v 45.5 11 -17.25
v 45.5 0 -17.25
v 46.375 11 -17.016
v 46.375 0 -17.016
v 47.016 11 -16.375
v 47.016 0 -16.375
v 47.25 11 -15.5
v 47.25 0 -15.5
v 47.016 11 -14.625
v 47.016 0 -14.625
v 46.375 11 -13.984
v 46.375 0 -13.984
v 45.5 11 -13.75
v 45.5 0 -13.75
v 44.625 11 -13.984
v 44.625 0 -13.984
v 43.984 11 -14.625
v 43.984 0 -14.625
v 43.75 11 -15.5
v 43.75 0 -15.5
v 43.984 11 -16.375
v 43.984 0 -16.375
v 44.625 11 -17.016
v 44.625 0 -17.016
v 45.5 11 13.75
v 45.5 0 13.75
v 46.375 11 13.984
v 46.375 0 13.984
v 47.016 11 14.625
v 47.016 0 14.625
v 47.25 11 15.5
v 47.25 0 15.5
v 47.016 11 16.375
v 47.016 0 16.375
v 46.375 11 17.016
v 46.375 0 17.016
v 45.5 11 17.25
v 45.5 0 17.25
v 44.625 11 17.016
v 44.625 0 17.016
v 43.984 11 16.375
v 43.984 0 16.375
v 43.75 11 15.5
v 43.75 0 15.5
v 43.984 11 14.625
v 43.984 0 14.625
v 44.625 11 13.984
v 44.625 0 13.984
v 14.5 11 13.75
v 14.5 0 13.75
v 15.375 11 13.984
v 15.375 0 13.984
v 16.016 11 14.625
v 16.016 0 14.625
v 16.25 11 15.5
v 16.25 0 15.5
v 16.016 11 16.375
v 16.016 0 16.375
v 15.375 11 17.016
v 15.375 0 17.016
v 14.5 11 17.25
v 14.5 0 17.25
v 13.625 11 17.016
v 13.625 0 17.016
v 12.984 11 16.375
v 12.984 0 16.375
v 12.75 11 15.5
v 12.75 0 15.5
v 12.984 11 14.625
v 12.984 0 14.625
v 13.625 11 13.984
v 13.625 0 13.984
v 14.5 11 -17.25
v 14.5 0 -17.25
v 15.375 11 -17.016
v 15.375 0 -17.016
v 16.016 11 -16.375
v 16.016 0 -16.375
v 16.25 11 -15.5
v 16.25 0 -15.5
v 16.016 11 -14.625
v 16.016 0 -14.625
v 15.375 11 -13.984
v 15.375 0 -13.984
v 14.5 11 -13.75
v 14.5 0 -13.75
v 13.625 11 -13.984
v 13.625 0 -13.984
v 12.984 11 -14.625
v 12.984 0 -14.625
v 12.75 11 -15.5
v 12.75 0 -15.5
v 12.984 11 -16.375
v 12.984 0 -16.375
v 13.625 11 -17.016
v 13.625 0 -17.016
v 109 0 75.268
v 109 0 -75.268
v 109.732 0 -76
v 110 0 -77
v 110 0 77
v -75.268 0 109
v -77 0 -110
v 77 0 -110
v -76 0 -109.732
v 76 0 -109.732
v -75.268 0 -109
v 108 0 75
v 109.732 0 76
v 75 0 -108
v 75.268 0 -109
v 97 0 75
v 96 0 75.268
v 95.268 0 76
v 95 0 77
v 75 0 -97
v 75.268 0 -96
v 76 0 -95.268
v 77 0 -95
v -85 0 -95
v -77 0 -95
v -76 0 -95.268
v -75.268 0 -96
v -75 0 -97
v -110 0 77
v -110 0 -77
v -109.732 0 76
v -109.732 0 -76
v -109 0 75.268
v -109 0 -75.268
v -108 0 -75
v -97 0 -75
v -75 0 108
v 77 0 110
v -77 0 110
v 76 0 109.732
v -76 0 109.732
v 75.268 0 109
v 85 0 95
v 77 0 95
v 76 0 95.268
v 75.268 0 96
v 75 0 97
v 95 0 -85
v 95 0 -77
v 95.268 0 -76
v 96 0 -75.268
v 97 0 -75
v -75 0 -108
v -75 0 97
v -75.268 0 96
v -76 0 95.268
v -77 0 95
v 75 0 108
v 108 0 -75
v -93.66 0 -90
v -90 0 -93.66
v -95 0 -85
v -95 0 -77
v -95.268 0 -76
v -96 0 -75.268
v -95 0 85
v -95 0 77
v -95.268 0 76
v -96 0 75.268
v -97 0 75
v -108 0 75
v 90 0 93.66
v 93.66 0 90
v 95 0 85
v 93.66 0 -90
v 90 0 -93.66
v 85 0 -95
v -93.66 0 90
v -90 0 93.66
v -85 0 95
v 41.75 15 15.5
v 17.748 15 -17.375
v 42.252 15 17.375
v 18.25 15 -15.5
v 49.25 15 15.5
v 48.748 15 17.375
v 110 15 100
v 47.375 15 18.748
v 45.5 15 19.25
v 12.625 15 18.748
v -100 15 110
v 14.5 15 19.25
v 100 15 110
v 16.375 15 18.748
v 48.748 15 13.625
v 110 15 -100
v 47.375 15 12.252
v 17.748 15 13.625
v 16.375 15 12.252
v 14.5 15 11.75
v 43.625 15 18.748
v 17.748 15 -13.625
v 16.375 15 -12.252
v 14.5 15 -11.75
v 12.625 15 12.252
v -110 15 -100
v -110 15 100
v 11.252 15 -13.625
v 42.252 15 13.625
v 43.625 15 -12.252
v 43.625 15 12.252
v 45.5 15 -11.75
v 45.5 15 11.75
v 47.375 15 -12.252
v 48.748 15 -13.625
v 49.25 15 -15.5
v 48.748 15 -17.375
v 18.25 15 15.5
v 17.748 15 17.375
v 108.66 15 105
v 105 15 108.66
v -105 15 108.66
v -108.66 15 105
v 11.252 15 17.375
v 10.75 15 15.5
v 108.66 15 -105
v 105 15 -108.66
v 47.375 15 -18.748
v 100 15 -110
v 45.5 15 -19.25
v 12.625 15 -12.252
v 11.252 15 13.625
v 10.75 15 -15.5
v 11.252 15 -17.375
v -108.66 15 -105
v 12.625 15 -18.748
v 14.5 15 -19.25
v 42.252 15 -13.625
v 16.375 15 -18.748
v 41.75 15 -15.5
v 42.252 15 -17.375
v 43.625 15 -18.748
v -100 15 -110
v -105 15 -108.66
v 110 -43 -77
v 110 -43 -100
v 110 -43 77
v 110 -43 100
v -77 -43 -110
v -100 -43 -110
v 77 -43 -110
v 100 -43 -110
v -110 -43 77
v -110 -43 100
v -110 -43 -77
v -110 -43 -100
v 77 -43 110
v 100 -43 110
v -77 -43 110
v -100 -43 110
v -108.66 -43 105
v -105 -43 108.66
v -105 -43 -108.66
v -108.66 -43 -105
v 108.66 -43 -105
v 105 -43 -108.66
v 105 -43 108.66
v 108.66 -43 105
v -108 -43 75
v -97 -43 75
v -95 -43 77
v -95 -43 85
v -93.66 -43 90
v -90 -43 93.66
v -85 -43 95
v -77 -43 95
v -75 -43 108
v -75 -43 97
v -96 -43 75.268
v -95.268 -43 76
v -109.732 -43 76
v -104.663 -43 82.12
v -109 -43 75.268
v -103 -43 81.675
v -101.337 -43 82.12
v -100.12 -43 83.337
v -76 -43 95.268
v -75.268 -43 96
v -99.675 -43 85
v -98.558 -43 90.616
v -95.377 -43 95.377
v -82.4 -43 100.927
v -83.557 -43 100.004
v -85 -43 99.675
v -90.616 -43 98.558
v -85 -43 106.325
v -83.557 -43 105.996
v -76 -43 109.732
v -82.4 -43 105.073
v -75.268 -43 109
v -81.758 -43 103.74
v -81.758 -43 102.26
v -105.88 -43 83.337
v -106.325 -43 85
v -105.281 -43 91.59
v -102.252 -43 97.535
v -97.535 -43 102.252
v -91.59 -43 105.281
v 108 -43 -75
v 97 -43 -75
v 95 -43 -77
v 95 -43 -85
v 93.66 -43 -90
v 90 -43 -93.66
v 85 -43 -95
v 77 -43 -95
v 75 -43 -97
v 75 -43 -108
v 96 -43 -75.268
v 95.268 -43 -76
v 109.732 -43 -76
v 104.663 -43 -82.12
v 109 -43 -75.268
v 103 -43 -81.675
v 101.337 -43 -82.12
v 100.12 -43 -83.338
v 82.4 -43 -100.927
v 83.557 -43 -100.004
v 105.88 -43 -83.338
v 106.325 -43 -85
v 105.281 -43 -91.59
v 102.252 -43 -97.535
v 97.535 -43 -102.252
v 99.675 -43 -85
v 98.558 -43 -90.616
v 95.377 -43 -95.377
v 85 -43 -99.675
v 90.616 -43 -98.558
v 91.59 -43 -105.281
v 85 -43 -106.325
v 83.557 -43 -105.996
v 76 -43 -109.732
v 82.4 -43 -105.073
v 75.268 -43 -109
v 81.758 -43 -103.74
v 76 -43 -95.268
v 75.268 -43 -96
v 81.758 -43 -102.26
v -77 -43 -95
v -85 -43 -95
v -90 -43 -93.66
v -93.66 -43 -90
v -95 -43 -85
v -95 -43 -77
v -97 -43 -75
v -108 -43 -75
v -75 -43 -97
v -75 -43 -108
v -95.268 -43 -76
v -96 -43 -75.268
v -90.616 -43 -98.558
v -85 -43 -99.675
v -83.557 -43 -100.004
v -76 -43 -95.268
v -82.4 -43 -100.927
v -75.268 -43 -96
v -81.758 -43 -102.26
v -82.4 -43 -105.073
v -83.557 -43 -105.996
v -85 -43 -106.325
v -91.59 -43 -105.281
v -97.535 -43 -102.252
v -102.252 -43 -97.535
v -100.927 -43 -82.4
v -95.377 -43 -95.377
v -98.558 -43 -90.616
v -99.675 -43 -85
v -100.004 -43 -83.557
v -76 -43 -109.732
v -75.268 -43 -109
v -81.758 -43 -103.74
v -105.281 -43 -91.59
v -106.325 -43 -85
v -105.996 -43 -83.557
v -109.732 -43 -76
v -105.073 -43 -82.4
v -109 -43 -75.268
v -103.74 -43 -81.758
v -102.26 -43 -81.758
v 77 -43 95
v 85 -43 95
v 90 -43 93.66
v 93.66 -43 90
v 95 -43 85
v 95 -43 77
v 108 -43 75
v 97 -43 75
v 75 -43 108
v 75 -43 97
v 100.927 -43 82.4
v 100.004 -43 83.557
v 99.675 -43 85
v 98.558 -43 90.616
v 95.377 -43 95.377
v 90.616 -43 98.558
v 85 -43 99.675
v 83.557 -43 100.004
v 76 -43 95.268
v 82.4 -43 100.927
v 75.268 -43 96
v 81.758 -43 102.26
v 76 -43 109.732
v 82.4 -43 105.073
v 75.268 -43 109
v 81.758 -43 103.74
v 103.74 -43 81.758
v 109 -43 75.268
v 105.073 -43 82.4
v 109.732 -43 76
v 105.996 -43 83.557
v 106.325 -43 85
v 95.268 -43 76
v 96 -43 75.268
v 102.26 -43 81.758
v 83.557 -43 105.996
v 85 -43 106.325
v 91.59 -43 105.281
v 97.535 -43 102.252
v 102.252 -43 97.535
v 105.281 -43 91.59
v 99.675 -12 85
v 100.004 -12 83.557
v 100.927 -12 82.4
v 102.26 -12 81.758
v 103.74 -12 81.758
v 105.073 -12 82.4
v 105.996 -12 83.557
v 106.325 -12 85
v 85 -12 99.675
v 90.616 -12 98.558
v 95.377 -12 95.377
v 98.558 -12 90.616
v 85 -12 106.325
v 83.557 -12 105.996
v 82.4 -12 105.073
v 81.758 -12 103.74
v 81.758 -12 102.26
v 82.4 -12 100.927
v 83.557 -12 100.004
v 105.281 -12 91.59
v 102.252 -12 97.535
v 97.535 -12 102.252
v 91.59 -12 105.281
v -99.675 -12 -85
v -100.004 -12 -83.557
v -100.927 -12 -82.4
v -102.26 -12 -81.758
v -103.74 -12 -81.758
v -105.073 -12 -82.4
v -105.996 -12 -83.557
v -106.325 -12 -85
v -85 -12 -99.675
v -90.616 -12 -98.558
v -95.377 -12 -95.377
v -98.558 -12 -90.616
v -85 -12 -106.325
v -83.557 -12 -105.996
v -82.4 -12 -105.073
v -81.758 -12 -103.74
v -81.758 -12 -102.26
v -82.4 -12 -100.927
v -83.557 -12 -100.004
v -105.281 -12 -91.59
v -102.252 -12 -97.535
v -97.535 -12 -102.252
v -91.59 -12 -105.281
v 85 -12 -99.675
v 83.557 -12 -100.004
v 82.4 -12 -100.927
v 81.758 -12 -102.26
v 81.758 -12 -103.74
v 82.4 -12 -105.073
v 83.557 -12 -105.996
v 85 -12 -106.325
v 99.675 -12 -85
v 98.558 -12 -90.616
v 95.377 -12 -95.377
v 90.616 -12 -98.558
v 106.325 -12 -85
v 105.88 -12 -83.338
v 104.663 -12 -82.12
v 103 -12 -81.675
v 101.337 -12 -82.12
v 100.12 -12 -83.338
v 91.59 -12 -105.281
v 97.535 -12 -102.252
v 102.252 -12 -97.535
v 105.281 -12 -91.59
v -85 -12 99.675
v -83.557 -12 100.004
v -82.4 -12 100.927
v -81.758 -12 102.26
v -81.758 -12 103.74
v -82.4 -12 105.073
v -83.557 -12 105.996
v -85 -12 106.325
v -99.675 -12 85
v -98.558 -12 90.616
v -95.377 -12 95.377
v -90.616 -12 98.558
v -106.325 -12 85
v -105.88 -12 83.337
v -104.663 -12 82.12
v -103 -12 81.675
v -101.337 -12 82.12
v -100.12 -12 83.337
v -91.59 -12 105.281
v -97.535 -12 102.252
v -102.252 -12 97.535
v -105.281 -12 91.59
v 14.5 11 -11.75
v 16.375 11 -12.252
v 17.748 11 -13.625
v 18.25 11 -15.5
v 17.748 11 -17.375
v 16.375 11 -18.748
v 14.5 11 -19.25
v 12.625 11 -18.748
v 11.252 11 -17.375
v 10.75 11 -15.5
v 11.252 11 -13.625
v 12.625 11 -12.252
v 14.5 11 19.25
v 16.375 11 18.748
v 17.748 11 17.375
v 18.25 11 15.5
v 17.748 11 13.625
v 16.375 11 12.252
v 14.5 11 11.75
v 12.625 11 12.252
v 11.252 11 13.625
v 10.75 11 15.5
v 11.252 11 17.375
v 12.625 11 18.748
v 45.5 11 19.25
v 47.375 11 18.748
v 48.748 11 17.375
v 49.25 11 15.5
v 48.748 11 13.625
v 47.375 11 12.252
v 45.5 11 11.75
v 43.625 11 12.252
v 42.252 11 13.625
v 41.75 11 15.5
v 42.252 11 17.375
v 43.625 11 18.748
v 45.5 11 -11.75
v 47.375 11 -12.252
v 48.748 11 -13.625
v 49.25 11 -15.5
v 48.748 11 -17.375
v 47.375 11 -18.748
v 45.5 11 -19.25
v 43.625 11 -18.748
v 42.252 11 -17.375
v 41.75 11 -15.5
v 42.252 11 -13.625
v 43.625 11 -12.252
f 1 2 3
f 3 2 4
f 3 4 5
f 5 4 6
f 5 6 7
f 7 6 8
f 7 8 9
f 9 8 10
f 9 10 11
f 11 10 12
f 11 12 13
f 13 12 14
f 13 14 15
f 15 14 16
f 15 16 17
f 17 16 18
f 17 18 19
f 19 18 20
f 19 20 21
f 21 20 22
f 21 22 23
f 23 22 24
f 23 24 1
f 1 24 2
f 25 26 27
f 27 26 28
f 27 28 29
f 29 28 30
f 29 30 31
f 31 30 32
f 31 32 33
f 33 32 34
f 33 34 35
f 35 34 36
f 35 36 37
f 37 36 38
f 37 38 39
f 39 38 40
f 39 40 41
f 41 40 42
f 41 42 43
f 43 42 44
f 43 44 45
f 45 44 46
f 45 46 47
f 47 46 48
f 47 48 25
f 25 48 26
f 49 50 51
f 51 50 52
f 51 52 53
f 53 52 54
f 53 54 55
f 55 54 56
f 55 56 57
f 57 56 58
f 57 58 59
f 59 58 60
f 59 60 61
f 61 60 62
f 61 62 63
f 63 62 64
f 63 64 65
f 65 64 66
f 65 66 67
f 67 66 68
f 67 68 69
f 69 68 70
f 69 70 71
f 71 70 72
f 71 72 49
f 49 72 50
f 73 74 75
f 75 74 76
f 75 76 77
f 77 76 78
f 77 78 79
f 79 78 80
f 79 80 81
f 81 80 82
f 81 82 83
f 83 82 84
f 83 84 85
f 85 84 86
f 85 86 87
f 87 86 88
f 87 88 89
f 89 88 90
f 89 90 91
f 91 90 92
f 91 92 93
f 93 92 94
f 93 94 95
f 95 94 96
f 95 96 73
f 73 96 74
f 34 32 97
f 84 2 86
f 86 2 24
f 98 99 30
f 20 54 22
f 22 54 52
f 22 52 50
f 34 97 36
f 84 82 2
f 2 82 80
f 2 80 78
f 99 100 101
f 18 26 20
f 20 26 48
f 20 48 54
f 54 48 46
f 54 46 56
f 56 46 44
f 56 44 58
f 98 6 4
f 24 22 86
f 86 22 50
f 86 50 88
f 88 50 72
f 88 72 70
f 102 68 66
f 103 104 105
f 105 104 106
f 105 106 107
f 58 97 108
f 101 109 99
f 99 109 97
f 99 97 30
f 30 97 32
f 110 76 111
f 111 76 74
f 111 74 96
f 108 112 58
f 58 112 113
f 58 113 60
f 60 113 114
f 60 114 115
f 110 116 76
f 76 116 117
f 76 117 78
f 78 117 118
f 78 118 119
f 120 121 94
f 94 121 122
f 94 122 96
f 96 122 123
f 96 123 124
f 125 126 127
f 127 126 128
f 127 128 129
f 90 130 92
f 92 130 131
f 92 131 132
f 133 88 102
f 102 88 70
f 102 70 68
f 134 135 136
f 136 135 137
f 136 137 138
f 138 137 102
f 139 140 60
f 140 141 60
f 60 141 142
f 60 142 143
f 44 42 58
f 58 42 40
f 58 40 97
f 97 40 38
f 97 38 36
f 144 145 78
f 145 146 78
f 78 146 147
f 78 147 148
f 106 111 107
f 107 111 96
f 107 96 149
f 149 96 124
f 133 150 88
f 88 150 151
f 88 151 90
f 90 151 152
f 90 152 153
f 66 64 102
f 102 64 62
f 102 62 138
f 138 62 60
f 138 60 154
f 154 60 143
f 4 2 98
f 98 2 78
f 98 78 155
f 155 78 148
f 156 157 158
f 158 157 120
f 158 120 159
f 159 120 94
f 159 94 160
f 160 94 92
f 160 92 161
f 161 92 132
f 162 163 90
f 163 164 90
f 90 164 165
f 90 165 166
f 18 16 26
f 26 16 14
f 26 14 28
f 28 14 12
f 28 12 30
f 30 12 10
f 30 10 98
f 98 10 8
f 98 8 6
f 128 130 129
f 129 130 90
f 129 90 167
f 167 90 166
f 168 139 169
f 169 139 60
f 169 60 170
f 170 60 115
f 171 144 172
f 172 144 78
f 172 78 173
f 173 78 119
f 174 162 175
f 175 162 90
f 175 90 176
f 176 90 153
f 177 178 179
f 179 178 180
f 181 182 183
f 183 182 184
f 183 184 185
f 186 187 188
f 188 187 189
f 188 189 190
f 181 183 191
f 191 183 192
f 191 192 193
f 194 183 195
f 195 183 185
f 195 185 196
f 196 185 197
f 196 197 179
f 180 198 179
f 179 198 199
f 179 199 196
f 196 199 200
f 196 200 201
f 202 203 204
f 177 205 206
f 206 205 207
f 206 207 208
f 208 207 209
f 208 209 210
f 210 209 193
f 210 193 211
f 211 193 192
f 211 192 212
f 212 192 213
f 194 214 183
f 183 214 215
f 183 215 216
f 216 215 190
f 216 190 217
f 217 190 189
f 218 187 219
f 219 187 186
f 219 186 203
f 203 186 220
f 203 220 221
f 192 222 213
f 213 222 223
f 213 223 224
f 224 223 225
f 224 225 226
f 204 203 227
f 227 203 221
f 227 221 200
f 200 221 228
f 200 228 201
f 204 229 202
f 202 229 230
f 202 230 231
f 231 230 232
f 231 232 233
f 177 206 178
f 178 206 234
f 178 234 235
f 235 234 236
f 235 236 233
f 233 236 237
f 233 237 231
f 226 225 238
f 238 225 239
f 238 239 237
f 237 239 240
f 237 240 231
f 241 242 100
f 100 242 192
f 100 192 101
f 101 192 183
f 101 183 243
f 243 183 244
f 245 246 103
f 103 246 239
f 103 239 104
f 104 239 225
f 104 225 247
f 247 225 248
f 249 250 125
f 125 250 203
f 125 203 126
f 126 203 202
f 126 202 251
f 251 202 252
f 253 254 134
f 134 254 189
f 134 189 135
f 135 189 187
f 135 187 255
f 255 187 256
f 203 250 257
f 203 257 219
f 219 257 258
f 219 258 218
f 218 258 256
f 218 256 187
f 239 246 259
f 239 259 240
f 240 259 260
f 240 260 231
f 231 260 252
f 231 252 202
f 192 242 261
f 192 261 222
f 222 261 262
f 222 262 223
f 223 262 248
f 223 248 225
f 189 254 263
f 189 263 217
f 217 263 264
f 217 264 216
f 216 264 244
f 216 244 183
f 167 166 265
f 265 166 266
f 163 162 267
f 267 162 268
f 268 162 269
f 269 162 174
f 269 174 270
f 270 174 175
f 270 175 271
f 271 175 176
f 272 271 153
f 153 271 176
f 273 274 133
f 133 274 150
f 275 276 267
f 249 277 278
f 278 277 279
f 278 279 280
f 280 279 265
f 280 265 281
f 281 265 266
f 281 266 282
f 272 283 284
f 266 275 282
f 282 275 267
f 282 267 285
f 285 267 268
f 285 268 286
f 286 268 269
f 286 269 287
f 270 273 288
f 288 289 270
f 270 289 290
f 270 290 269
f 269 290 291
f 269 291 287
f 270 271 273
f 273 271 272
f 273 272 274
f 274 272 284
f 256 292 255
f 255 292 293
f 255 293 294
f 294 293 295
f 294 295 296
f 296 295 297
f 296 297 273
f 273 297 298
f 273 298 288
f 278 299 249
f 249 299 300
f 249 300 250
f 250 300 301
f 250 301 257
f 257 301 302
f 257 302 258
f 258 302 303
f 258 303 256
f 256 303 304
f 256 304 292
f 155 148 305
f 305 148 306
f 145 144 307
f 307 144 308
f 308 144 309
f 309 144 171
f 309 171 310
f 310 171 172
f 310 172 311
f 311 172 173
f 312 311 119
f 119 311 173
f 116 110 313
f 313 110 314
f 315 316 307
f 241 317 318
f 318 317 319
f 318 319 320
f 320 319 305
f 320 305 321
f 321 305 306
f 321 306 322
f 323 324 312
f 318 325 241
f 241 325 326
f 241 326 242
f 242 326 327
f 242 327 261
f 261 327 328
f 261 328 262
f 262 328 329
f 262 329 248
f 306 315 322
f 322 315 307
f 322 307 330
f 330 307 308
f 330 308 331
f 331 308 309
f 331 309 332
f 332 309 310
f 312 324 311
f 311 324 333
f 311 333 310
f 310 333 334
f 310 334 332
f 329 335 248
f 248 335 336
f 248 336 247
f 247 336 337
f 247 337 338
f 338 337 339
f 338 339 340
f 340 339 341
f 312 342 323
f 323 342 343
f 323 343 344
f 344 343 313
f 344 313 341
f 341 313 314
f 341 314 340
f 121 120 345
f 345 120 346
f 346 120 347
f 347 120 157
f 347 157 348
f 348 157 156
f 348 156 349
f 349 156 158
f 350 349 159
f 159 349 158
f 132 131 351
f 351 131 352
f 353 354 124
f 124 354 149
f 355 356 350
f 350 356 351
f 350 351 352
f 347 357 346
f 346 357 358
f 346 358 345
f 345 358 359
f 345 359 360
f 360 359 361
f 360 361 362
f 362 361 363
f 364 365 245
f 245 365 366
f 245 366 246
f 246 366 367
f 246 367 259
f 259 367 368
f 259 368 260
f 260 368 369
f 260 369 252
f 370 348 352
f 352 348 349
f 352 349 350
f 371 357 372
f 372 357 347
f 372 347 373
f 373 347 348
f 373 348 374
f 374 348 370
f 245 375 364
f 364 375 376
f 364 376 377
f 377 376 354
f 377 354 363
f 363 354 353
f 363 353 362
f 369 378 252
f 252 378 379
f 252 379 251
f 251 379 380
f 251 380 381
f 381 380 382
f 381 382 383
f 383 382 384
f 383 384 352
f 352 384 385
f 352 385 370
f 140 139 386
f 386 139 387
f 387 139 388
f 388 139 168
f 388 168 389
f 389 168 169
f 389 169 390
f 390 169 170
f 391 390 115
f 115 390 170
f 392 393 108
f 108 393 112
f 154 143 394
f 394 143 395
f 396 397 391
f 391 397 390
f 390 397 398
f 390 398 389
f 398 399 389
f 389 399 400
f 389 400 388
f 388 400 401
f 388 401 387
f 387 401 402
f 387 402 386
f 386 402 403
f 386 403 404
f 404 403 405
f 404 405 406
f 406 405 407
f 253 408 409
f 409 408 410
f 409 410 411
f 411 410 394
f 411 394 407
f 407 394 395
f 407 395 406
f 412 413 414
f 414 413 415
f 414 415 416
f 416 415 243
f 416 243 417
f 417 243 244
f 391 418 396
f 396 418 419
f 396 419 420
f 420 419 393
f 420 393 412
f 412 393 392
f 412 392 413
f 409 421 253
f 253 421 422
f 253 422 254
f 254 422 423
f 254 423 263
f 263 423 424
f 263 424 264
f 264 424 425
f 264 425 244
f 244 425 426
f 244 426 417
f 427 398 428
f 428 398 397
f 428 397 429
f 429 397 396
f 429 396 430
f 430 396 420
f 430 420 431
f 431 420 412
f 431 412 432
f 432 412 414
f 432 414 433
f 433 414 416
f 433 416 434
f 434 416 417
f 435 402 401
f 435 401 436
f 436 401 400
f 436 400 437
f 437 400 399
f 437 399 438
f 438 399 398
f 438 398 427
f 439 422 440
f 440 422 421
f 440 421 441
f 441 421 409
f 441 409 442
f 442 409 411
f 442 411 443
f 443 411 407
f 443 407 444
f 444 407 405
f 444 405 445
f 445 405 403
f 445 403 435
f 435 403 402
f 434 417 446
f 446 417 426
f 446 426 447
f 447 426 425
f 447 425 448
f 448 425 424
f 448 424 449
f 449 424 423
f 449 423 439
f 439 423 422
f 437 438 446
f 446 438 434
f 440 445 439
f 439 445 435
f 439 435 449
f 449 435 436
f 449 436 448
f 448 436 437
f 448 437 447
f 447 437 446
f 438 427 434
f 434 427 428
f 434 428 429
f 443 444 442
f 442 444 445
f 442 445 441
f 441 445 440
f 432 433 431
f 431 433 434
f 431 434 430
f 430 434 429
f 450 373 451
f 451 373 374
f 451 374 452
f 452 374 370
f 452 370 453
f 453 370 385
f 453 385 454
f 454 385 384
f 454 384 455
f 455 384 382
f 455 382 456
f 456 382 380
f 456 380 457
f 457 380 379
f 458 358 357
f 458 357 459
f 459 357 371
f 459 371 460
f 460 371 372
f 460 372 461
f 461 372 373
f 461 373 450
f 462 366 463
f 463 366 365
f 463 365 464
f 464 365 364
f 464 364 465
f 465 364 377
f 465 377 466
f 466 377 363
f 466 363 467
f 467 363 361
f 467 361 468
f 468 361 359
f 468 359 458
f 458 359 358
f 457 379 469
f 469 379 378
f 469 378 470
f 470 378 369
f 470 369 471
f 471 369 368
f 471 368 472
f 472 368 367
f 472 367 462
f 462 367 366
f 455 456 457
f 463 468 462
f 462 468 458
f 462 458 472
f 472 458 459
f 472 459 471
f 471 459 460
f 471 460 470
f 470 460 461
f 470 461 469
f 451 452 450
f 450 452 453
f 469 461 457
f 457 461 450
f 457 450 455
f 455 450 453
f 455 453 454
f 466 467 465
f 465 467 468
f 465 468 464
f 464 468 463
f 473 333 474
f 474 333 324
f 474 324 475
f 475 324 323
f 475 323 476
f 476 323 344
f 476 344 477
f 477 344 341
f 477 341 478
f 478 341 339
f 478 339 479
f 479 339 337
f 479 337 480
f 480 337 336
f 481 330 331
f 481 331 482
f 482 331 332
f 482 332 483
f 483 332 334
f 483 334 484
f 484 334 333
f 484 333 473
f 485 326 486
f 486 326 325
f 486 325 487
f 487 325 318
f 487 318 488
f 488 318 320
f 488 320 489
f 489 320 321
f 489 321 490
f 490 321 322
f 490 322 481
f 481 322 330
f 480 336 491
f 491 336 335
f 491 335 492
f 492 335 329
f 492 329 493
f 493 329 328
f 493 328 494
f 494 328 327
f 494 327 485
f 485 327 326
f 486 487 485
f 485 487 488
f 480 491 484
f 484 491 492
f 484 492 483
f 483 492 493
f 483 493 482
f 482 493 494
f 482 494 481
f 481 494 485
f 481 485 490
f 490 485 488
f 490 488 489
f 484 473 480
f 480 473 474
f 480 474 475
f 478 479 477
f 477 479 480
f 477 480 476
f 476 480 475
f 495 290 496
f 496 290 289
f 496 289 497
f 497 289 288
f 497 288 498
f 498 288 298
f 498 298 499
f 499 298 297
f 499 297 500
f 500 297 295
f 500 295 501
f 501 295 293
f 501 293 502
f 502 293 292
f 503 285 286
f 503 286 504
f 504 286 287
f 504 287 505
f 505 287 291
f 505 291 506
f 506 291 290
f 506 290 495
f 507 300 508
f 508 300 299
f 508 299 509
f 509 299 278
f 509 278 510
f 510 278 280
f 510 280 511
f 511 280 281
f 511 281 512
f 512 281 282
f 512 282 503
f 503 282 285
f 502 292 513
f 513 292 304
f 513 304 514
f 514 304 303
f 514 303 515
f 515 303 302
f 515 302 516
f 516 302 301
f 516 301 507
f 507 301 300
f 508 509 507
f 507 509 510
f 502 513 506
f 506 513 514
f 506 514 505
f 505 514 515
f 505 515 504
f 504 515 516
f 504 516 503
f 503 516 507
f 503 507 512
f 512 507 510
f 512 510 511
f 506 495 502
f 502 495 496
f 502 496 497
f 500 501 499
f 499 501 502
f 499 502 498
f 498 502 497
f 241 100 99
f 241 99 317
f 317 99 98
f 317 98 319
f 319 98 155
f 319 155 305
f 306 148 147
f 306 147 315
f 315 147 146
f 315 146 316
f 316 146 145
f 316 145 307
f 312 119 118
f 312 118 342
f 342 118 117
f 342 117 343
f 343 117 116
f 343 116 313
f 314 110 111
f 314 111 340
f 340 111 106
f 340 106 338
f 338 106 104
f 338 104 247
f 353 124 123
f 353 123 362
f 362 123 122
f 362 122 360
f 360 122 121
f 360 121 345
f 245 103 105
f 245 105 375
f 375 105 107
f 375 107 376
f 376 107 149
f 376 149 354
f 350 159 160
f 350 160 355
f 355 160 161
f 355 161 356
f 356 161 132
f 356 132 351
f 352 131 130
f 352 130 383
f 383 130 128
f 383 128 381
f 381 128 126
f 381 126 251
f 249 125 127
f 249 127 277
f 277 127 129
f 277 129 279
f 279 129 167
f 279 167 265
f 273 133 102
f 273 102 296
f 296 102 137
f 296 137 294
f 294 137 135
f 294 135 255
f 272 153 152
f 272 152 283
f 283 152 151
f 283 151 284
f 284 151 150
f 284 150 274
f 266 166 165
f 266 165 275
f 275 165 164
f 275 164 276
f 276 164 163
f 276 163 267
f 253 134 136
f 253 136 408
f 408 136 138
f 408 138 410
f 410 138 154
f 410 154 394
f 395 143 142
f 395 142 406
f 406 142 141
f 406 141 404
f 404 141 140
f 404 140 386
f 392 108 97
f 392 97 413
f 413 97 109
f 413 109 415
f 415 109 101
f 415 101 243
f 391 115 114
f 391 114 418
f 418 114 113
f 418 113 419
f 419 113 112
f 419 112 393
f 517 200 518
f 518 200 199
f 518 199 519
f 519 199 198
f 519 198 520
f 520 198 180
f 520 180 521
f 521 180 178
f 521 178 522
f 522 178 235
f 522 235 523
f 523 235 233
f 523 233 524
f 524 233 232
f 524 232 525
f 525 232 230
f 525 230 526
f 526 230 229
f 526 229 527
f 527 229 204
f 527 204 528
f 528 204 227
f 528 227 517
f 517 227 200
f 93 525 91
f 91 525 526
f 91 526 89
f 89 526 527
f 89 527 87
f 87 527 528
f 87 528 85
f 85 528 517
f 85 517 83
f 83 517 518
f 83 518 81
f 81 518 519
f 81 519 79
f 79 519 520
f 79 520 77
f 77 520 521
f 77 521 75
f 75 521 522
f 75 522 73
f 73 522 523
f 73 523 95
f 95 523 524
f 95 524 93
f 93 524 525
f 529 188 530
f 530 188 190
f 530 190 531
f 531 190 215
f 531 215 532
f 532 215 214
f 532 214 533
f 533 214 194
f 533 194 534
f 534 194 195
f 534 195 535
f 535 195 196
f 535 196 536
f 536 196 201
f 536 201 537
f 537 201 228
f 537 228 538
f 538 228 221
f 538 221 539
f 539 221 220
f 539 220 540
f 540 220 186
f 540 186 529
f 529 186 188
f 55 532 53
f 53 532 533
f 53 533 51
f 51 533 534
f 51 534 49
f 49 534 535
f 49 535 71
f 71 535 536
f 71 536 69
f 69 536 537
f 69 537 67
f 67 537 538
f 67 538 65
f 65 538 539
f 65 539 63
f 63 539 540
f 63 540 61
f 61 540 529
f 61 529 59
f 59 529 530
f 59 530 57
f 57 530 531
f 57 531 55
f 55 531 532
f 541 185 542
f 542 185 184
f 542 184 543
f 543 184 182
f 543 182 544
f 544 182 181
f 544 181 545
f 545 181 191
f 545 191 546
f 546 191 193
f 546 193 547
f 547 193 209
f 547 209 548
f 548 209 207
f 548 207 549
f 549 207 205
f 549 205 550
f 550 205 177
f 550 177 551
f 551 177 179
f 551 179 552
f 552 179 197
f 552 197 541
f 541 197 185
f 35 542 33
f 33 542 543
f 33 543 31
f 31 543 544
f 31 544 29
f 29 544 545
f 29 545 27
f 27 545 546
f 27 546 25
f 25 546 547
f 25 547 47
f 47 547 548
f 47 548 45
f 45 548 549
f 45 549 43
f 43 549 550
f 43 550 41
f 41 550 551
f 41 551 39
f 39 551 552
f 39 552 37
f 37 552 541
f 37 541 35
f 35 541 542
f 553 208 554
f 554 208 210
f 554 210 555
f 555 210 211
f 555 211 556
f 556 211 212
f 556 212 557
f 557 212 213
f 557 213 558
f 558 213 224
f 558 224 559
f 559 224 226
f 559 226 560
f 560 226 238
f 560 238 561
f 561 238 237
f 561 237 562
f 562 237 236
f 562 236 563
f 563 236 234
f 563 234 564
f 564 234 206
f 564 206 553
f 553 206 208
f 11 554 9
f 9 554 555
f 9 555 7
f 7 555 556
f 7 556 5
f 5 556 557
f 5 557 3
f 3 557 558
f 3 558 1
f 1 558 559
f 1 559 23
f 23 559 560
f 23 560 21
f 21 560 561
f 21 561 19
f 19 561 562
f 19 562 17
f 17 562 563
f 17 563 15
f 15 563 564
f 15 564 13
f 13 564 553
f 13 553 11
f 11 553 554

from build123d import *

# Parameters (mm, degrees)
SKETCH1_W           = 220
SKETCH1_H           = 220
SKETCH1_R           = 1.75
BOSS_EXTRUDE1_DEPTH = 15
FILLET1_R           = 10
BOSS_EXTRUDE2_DEPTH = 43
CUT_EXTRUDE1_DEPTH  = 31
FILLET2_R           = 2
SKETCH5_R           = 3.75
CUT_EXTRUDE2_DEPTH  = 4


with BuildPart() as part:
    # Sketch1 → Boss-Extrude1 (new body)
    with BuildSketch(Plane(origin=(0, 0, 0), x_dir=(1, 0, 0), z_dir=(0, 1, 0))):
        Rectangle(SKETCH1_W, SKETCH1_H)
        with Locations(Location((45.5, 15.5, 0), (0, 0, 270))):
            Circle(SKETCH1_R, mode=Mode.SUBTRACT)
        with Locations(Location((45.5, -15.5, 0), (0, 0, 90))):
            Circle(SKETCH1_R, mode=Mode.SUBTRACT)
        with Locations(Location((14.5, -15.5, 0), (0, 0, 270))):
            Circle(SKETCH1_R, mode=Mode.SUBTRACT)
        with Locations(Location((14.5, 15.5, 0), (0, 0, 90))):
            Circle(SKETCH1_R, mode=Mode.SUBTRACT)
    extrude(amount=BOSS_EXTRUDE1_DEPTH)

    # Fillet1
    fillet1_edges = [part.edges().sort_by_distance(p)[0] for p in [
        (110, 7.5, 110),
        (-110, 7.5, 110),
        (-110, 7.5, -110),
        (110, 7.5, -110),
    ]]
    fillet(fillet1_edges, radius=FILLET1_R)

    # Sketch2 → Boss-Extrude2 (add)
    with BuildSketch(Plane.XZ):
        with BuildLine():
            Line((-75, 95), (-85, 95))
            ThreePointArc((-85, 95), (-92.071067812, 92.071067812), (-95, 85))
            Line((-95, 85), (-95, 75))
            Line((-95, 75), (-110, 75))
            Line((-110, 75), (-110, 100))
            ThreePointArc((-110, 100), (-107.071067812, 107.071067812), (-100, 110))
            Line((-100, 110), (-75, 110))
            Line((-75, 110), (-75, 95))
        make_face()
        with BuildLine():
            Line((-75, -95), (-75, -110))
            Line((-75, -110), (-100, -110))
            ThreePointArc((-100, -110), (-107.071067812, -107.071067812), (-110, -100))
            Line((-110, -100), (-110, -75))
            Line((-110, -75), (-95, -75))
            Line((-95, -75), (-95, -85))
            ThreePointArc((-95, -85), (-92.071067812, -92.071067812), (-85, -95))
            Line((-85, -95), (-75, -95))
        make_face()
        with BuildLine():
            Line((75, -95), (85, -95))
            ThreePointArc((85, -95), (92.071067812, -92.071067812), (95, -85))
            Line((95, -85), (95, -75))
            Line((95, -75), (110, -75))
            Line((110, -75), (110, -100))
            ThreePointArc((110, -100), (107.071067812, -107.071067812), (100, -110))
            Line((100, -110), (75, -110))
            Line((75, -110), (75, -95))
        make_face()
        with BuildLine():
            Line((75, 95), (75, 110))
            Line((75, 110), (100, 110))
            ThreePointArc((100, 110), (107.071067812, 107.071067812), (110, 100))
            Line((110, 100), (110, 75))
            Line((110, 75), (95, 75))
            Line((95, 75), (95, 85))
            ThreePointArc((95, 85), (92.071067812, 92.071067812), (85, 95))
            Line((85, 95), (75, 95))
        make_face()
    extrude(amount=BOSS_EXTRUDE2_DEPTH)

    # Sketch3 → Cut-Extrude1 (cut)
    with BuildSketch(Plane.XZ.offset(43)):
        with BuildLine():
            ThreePointArc((-106.325, -85), (-100.079052109, -100.079052109), (-85, -106.325))
            ThreePointArc((-85, -106.325), (-81.675, -103), (-85, -99.675))
            ThreePointArc((-85, -99.675), (-95.376792014, -95.376792014), (-99.675, -85))
            ThreePointArc((-99.675, -85), (-103, -81.675), (-106.325, -85))
        make_face()
        with BuildLine():
            ThreePointArc((-85, 106.325), (-100.079052109, 100.079052109), (-106.325, 85))
            ThreePointArc((-106.325, 85), (-103, 81.675), (-99.675, 85))
            ThreePointArc((-99.675, 85), (-95.376792014, 95.376792014), (-85, 99.675))
            ThreePointArc((-85, 99.675), (-81.675, 103), (-85, 106.325))
        make_face()
        with BuildLine():
            ThreePointArc((106.325, 85), (100.079052109, 100.079052109), (85, 106.325))
            ThreePointArc((85, 106.325), (81.675, 103), (85, 99.675))
            ThreePointArc((85, 99.675), (95.376792014, 95.376792014), (99.675, 85))
            ThreePointArc((99.675, 85), (103, 81.675), (106.325, 85))
        make_face()
        with BuildLine():
            ThreePointArc((85, -106.325), (100.079052109, -100.079052109), (106.325, -85))
            ThreePointArc((106.325, -85), (103, -81.675), (99.675, -85))
            ThreePointArc((99.675, -85), (95.376792014, -95.376792014), (85, -99.675))
            ThreePointArc((85, -99.675), (81.675, -103), (85, -106.325))
        make_face()
    extrude(amount=-CUT_EXTRUDE1_DEPTH, mode=Mode.SUBTRACT)

    # Fillet2
    fillet2_edges = [part.edges().sort_by_distance(p)[0] for p in [
        (-75, -21.5, -95),
        (-95, -21.5, -75),
        (-110, -21.5, -75),
        (-75, -21.5, -110),
        (75, -21.5, 95),
        (95, -21.5, 75),
        (110, -21.5, 75),
        (75, -21.5, 110),
        (-110, -21.5, 75),
        (-95, -21.5, 75),
        (-75, -21.5, 95),
        (-75, -21.5, 110),
        (110, -21.5, -75),
        (95, -21.5, -75),
        (75, -21.5, -95),
        (75, -21.5, -110),
    ]]
    fillet(fillet2_edges, radius=FILLET2_R)

    # Sketch5 → Cut-Extrude2 (cut)
    with BuildSketch(Plane(origin=(0, 15, 0), x_dir=(1, 0, 0), z_dir=(0, 1, 0))):
        with Locations(Location((14.5, 15.5, 0), (0, 0, 270))):
            Circle(SKETCH5_R)
        with Locations(Location((45.5, 15.5, 0), (0, 0, 270))):
            Circle(SKETCH5_R)
        with Locations(Location((14.5, -15.5, 0), (0, 0, 270))):
            Circle(SKETCH5_R)
        with Locations(Location((45.5, -15.5, 0), (0, 0, 270))):
            Circle(SKETCH5_R)
    extrude(amount=-CUT_EXTRUDE2_DEPTH, mode=Mode.SUBTRACT)


solid = part.part
